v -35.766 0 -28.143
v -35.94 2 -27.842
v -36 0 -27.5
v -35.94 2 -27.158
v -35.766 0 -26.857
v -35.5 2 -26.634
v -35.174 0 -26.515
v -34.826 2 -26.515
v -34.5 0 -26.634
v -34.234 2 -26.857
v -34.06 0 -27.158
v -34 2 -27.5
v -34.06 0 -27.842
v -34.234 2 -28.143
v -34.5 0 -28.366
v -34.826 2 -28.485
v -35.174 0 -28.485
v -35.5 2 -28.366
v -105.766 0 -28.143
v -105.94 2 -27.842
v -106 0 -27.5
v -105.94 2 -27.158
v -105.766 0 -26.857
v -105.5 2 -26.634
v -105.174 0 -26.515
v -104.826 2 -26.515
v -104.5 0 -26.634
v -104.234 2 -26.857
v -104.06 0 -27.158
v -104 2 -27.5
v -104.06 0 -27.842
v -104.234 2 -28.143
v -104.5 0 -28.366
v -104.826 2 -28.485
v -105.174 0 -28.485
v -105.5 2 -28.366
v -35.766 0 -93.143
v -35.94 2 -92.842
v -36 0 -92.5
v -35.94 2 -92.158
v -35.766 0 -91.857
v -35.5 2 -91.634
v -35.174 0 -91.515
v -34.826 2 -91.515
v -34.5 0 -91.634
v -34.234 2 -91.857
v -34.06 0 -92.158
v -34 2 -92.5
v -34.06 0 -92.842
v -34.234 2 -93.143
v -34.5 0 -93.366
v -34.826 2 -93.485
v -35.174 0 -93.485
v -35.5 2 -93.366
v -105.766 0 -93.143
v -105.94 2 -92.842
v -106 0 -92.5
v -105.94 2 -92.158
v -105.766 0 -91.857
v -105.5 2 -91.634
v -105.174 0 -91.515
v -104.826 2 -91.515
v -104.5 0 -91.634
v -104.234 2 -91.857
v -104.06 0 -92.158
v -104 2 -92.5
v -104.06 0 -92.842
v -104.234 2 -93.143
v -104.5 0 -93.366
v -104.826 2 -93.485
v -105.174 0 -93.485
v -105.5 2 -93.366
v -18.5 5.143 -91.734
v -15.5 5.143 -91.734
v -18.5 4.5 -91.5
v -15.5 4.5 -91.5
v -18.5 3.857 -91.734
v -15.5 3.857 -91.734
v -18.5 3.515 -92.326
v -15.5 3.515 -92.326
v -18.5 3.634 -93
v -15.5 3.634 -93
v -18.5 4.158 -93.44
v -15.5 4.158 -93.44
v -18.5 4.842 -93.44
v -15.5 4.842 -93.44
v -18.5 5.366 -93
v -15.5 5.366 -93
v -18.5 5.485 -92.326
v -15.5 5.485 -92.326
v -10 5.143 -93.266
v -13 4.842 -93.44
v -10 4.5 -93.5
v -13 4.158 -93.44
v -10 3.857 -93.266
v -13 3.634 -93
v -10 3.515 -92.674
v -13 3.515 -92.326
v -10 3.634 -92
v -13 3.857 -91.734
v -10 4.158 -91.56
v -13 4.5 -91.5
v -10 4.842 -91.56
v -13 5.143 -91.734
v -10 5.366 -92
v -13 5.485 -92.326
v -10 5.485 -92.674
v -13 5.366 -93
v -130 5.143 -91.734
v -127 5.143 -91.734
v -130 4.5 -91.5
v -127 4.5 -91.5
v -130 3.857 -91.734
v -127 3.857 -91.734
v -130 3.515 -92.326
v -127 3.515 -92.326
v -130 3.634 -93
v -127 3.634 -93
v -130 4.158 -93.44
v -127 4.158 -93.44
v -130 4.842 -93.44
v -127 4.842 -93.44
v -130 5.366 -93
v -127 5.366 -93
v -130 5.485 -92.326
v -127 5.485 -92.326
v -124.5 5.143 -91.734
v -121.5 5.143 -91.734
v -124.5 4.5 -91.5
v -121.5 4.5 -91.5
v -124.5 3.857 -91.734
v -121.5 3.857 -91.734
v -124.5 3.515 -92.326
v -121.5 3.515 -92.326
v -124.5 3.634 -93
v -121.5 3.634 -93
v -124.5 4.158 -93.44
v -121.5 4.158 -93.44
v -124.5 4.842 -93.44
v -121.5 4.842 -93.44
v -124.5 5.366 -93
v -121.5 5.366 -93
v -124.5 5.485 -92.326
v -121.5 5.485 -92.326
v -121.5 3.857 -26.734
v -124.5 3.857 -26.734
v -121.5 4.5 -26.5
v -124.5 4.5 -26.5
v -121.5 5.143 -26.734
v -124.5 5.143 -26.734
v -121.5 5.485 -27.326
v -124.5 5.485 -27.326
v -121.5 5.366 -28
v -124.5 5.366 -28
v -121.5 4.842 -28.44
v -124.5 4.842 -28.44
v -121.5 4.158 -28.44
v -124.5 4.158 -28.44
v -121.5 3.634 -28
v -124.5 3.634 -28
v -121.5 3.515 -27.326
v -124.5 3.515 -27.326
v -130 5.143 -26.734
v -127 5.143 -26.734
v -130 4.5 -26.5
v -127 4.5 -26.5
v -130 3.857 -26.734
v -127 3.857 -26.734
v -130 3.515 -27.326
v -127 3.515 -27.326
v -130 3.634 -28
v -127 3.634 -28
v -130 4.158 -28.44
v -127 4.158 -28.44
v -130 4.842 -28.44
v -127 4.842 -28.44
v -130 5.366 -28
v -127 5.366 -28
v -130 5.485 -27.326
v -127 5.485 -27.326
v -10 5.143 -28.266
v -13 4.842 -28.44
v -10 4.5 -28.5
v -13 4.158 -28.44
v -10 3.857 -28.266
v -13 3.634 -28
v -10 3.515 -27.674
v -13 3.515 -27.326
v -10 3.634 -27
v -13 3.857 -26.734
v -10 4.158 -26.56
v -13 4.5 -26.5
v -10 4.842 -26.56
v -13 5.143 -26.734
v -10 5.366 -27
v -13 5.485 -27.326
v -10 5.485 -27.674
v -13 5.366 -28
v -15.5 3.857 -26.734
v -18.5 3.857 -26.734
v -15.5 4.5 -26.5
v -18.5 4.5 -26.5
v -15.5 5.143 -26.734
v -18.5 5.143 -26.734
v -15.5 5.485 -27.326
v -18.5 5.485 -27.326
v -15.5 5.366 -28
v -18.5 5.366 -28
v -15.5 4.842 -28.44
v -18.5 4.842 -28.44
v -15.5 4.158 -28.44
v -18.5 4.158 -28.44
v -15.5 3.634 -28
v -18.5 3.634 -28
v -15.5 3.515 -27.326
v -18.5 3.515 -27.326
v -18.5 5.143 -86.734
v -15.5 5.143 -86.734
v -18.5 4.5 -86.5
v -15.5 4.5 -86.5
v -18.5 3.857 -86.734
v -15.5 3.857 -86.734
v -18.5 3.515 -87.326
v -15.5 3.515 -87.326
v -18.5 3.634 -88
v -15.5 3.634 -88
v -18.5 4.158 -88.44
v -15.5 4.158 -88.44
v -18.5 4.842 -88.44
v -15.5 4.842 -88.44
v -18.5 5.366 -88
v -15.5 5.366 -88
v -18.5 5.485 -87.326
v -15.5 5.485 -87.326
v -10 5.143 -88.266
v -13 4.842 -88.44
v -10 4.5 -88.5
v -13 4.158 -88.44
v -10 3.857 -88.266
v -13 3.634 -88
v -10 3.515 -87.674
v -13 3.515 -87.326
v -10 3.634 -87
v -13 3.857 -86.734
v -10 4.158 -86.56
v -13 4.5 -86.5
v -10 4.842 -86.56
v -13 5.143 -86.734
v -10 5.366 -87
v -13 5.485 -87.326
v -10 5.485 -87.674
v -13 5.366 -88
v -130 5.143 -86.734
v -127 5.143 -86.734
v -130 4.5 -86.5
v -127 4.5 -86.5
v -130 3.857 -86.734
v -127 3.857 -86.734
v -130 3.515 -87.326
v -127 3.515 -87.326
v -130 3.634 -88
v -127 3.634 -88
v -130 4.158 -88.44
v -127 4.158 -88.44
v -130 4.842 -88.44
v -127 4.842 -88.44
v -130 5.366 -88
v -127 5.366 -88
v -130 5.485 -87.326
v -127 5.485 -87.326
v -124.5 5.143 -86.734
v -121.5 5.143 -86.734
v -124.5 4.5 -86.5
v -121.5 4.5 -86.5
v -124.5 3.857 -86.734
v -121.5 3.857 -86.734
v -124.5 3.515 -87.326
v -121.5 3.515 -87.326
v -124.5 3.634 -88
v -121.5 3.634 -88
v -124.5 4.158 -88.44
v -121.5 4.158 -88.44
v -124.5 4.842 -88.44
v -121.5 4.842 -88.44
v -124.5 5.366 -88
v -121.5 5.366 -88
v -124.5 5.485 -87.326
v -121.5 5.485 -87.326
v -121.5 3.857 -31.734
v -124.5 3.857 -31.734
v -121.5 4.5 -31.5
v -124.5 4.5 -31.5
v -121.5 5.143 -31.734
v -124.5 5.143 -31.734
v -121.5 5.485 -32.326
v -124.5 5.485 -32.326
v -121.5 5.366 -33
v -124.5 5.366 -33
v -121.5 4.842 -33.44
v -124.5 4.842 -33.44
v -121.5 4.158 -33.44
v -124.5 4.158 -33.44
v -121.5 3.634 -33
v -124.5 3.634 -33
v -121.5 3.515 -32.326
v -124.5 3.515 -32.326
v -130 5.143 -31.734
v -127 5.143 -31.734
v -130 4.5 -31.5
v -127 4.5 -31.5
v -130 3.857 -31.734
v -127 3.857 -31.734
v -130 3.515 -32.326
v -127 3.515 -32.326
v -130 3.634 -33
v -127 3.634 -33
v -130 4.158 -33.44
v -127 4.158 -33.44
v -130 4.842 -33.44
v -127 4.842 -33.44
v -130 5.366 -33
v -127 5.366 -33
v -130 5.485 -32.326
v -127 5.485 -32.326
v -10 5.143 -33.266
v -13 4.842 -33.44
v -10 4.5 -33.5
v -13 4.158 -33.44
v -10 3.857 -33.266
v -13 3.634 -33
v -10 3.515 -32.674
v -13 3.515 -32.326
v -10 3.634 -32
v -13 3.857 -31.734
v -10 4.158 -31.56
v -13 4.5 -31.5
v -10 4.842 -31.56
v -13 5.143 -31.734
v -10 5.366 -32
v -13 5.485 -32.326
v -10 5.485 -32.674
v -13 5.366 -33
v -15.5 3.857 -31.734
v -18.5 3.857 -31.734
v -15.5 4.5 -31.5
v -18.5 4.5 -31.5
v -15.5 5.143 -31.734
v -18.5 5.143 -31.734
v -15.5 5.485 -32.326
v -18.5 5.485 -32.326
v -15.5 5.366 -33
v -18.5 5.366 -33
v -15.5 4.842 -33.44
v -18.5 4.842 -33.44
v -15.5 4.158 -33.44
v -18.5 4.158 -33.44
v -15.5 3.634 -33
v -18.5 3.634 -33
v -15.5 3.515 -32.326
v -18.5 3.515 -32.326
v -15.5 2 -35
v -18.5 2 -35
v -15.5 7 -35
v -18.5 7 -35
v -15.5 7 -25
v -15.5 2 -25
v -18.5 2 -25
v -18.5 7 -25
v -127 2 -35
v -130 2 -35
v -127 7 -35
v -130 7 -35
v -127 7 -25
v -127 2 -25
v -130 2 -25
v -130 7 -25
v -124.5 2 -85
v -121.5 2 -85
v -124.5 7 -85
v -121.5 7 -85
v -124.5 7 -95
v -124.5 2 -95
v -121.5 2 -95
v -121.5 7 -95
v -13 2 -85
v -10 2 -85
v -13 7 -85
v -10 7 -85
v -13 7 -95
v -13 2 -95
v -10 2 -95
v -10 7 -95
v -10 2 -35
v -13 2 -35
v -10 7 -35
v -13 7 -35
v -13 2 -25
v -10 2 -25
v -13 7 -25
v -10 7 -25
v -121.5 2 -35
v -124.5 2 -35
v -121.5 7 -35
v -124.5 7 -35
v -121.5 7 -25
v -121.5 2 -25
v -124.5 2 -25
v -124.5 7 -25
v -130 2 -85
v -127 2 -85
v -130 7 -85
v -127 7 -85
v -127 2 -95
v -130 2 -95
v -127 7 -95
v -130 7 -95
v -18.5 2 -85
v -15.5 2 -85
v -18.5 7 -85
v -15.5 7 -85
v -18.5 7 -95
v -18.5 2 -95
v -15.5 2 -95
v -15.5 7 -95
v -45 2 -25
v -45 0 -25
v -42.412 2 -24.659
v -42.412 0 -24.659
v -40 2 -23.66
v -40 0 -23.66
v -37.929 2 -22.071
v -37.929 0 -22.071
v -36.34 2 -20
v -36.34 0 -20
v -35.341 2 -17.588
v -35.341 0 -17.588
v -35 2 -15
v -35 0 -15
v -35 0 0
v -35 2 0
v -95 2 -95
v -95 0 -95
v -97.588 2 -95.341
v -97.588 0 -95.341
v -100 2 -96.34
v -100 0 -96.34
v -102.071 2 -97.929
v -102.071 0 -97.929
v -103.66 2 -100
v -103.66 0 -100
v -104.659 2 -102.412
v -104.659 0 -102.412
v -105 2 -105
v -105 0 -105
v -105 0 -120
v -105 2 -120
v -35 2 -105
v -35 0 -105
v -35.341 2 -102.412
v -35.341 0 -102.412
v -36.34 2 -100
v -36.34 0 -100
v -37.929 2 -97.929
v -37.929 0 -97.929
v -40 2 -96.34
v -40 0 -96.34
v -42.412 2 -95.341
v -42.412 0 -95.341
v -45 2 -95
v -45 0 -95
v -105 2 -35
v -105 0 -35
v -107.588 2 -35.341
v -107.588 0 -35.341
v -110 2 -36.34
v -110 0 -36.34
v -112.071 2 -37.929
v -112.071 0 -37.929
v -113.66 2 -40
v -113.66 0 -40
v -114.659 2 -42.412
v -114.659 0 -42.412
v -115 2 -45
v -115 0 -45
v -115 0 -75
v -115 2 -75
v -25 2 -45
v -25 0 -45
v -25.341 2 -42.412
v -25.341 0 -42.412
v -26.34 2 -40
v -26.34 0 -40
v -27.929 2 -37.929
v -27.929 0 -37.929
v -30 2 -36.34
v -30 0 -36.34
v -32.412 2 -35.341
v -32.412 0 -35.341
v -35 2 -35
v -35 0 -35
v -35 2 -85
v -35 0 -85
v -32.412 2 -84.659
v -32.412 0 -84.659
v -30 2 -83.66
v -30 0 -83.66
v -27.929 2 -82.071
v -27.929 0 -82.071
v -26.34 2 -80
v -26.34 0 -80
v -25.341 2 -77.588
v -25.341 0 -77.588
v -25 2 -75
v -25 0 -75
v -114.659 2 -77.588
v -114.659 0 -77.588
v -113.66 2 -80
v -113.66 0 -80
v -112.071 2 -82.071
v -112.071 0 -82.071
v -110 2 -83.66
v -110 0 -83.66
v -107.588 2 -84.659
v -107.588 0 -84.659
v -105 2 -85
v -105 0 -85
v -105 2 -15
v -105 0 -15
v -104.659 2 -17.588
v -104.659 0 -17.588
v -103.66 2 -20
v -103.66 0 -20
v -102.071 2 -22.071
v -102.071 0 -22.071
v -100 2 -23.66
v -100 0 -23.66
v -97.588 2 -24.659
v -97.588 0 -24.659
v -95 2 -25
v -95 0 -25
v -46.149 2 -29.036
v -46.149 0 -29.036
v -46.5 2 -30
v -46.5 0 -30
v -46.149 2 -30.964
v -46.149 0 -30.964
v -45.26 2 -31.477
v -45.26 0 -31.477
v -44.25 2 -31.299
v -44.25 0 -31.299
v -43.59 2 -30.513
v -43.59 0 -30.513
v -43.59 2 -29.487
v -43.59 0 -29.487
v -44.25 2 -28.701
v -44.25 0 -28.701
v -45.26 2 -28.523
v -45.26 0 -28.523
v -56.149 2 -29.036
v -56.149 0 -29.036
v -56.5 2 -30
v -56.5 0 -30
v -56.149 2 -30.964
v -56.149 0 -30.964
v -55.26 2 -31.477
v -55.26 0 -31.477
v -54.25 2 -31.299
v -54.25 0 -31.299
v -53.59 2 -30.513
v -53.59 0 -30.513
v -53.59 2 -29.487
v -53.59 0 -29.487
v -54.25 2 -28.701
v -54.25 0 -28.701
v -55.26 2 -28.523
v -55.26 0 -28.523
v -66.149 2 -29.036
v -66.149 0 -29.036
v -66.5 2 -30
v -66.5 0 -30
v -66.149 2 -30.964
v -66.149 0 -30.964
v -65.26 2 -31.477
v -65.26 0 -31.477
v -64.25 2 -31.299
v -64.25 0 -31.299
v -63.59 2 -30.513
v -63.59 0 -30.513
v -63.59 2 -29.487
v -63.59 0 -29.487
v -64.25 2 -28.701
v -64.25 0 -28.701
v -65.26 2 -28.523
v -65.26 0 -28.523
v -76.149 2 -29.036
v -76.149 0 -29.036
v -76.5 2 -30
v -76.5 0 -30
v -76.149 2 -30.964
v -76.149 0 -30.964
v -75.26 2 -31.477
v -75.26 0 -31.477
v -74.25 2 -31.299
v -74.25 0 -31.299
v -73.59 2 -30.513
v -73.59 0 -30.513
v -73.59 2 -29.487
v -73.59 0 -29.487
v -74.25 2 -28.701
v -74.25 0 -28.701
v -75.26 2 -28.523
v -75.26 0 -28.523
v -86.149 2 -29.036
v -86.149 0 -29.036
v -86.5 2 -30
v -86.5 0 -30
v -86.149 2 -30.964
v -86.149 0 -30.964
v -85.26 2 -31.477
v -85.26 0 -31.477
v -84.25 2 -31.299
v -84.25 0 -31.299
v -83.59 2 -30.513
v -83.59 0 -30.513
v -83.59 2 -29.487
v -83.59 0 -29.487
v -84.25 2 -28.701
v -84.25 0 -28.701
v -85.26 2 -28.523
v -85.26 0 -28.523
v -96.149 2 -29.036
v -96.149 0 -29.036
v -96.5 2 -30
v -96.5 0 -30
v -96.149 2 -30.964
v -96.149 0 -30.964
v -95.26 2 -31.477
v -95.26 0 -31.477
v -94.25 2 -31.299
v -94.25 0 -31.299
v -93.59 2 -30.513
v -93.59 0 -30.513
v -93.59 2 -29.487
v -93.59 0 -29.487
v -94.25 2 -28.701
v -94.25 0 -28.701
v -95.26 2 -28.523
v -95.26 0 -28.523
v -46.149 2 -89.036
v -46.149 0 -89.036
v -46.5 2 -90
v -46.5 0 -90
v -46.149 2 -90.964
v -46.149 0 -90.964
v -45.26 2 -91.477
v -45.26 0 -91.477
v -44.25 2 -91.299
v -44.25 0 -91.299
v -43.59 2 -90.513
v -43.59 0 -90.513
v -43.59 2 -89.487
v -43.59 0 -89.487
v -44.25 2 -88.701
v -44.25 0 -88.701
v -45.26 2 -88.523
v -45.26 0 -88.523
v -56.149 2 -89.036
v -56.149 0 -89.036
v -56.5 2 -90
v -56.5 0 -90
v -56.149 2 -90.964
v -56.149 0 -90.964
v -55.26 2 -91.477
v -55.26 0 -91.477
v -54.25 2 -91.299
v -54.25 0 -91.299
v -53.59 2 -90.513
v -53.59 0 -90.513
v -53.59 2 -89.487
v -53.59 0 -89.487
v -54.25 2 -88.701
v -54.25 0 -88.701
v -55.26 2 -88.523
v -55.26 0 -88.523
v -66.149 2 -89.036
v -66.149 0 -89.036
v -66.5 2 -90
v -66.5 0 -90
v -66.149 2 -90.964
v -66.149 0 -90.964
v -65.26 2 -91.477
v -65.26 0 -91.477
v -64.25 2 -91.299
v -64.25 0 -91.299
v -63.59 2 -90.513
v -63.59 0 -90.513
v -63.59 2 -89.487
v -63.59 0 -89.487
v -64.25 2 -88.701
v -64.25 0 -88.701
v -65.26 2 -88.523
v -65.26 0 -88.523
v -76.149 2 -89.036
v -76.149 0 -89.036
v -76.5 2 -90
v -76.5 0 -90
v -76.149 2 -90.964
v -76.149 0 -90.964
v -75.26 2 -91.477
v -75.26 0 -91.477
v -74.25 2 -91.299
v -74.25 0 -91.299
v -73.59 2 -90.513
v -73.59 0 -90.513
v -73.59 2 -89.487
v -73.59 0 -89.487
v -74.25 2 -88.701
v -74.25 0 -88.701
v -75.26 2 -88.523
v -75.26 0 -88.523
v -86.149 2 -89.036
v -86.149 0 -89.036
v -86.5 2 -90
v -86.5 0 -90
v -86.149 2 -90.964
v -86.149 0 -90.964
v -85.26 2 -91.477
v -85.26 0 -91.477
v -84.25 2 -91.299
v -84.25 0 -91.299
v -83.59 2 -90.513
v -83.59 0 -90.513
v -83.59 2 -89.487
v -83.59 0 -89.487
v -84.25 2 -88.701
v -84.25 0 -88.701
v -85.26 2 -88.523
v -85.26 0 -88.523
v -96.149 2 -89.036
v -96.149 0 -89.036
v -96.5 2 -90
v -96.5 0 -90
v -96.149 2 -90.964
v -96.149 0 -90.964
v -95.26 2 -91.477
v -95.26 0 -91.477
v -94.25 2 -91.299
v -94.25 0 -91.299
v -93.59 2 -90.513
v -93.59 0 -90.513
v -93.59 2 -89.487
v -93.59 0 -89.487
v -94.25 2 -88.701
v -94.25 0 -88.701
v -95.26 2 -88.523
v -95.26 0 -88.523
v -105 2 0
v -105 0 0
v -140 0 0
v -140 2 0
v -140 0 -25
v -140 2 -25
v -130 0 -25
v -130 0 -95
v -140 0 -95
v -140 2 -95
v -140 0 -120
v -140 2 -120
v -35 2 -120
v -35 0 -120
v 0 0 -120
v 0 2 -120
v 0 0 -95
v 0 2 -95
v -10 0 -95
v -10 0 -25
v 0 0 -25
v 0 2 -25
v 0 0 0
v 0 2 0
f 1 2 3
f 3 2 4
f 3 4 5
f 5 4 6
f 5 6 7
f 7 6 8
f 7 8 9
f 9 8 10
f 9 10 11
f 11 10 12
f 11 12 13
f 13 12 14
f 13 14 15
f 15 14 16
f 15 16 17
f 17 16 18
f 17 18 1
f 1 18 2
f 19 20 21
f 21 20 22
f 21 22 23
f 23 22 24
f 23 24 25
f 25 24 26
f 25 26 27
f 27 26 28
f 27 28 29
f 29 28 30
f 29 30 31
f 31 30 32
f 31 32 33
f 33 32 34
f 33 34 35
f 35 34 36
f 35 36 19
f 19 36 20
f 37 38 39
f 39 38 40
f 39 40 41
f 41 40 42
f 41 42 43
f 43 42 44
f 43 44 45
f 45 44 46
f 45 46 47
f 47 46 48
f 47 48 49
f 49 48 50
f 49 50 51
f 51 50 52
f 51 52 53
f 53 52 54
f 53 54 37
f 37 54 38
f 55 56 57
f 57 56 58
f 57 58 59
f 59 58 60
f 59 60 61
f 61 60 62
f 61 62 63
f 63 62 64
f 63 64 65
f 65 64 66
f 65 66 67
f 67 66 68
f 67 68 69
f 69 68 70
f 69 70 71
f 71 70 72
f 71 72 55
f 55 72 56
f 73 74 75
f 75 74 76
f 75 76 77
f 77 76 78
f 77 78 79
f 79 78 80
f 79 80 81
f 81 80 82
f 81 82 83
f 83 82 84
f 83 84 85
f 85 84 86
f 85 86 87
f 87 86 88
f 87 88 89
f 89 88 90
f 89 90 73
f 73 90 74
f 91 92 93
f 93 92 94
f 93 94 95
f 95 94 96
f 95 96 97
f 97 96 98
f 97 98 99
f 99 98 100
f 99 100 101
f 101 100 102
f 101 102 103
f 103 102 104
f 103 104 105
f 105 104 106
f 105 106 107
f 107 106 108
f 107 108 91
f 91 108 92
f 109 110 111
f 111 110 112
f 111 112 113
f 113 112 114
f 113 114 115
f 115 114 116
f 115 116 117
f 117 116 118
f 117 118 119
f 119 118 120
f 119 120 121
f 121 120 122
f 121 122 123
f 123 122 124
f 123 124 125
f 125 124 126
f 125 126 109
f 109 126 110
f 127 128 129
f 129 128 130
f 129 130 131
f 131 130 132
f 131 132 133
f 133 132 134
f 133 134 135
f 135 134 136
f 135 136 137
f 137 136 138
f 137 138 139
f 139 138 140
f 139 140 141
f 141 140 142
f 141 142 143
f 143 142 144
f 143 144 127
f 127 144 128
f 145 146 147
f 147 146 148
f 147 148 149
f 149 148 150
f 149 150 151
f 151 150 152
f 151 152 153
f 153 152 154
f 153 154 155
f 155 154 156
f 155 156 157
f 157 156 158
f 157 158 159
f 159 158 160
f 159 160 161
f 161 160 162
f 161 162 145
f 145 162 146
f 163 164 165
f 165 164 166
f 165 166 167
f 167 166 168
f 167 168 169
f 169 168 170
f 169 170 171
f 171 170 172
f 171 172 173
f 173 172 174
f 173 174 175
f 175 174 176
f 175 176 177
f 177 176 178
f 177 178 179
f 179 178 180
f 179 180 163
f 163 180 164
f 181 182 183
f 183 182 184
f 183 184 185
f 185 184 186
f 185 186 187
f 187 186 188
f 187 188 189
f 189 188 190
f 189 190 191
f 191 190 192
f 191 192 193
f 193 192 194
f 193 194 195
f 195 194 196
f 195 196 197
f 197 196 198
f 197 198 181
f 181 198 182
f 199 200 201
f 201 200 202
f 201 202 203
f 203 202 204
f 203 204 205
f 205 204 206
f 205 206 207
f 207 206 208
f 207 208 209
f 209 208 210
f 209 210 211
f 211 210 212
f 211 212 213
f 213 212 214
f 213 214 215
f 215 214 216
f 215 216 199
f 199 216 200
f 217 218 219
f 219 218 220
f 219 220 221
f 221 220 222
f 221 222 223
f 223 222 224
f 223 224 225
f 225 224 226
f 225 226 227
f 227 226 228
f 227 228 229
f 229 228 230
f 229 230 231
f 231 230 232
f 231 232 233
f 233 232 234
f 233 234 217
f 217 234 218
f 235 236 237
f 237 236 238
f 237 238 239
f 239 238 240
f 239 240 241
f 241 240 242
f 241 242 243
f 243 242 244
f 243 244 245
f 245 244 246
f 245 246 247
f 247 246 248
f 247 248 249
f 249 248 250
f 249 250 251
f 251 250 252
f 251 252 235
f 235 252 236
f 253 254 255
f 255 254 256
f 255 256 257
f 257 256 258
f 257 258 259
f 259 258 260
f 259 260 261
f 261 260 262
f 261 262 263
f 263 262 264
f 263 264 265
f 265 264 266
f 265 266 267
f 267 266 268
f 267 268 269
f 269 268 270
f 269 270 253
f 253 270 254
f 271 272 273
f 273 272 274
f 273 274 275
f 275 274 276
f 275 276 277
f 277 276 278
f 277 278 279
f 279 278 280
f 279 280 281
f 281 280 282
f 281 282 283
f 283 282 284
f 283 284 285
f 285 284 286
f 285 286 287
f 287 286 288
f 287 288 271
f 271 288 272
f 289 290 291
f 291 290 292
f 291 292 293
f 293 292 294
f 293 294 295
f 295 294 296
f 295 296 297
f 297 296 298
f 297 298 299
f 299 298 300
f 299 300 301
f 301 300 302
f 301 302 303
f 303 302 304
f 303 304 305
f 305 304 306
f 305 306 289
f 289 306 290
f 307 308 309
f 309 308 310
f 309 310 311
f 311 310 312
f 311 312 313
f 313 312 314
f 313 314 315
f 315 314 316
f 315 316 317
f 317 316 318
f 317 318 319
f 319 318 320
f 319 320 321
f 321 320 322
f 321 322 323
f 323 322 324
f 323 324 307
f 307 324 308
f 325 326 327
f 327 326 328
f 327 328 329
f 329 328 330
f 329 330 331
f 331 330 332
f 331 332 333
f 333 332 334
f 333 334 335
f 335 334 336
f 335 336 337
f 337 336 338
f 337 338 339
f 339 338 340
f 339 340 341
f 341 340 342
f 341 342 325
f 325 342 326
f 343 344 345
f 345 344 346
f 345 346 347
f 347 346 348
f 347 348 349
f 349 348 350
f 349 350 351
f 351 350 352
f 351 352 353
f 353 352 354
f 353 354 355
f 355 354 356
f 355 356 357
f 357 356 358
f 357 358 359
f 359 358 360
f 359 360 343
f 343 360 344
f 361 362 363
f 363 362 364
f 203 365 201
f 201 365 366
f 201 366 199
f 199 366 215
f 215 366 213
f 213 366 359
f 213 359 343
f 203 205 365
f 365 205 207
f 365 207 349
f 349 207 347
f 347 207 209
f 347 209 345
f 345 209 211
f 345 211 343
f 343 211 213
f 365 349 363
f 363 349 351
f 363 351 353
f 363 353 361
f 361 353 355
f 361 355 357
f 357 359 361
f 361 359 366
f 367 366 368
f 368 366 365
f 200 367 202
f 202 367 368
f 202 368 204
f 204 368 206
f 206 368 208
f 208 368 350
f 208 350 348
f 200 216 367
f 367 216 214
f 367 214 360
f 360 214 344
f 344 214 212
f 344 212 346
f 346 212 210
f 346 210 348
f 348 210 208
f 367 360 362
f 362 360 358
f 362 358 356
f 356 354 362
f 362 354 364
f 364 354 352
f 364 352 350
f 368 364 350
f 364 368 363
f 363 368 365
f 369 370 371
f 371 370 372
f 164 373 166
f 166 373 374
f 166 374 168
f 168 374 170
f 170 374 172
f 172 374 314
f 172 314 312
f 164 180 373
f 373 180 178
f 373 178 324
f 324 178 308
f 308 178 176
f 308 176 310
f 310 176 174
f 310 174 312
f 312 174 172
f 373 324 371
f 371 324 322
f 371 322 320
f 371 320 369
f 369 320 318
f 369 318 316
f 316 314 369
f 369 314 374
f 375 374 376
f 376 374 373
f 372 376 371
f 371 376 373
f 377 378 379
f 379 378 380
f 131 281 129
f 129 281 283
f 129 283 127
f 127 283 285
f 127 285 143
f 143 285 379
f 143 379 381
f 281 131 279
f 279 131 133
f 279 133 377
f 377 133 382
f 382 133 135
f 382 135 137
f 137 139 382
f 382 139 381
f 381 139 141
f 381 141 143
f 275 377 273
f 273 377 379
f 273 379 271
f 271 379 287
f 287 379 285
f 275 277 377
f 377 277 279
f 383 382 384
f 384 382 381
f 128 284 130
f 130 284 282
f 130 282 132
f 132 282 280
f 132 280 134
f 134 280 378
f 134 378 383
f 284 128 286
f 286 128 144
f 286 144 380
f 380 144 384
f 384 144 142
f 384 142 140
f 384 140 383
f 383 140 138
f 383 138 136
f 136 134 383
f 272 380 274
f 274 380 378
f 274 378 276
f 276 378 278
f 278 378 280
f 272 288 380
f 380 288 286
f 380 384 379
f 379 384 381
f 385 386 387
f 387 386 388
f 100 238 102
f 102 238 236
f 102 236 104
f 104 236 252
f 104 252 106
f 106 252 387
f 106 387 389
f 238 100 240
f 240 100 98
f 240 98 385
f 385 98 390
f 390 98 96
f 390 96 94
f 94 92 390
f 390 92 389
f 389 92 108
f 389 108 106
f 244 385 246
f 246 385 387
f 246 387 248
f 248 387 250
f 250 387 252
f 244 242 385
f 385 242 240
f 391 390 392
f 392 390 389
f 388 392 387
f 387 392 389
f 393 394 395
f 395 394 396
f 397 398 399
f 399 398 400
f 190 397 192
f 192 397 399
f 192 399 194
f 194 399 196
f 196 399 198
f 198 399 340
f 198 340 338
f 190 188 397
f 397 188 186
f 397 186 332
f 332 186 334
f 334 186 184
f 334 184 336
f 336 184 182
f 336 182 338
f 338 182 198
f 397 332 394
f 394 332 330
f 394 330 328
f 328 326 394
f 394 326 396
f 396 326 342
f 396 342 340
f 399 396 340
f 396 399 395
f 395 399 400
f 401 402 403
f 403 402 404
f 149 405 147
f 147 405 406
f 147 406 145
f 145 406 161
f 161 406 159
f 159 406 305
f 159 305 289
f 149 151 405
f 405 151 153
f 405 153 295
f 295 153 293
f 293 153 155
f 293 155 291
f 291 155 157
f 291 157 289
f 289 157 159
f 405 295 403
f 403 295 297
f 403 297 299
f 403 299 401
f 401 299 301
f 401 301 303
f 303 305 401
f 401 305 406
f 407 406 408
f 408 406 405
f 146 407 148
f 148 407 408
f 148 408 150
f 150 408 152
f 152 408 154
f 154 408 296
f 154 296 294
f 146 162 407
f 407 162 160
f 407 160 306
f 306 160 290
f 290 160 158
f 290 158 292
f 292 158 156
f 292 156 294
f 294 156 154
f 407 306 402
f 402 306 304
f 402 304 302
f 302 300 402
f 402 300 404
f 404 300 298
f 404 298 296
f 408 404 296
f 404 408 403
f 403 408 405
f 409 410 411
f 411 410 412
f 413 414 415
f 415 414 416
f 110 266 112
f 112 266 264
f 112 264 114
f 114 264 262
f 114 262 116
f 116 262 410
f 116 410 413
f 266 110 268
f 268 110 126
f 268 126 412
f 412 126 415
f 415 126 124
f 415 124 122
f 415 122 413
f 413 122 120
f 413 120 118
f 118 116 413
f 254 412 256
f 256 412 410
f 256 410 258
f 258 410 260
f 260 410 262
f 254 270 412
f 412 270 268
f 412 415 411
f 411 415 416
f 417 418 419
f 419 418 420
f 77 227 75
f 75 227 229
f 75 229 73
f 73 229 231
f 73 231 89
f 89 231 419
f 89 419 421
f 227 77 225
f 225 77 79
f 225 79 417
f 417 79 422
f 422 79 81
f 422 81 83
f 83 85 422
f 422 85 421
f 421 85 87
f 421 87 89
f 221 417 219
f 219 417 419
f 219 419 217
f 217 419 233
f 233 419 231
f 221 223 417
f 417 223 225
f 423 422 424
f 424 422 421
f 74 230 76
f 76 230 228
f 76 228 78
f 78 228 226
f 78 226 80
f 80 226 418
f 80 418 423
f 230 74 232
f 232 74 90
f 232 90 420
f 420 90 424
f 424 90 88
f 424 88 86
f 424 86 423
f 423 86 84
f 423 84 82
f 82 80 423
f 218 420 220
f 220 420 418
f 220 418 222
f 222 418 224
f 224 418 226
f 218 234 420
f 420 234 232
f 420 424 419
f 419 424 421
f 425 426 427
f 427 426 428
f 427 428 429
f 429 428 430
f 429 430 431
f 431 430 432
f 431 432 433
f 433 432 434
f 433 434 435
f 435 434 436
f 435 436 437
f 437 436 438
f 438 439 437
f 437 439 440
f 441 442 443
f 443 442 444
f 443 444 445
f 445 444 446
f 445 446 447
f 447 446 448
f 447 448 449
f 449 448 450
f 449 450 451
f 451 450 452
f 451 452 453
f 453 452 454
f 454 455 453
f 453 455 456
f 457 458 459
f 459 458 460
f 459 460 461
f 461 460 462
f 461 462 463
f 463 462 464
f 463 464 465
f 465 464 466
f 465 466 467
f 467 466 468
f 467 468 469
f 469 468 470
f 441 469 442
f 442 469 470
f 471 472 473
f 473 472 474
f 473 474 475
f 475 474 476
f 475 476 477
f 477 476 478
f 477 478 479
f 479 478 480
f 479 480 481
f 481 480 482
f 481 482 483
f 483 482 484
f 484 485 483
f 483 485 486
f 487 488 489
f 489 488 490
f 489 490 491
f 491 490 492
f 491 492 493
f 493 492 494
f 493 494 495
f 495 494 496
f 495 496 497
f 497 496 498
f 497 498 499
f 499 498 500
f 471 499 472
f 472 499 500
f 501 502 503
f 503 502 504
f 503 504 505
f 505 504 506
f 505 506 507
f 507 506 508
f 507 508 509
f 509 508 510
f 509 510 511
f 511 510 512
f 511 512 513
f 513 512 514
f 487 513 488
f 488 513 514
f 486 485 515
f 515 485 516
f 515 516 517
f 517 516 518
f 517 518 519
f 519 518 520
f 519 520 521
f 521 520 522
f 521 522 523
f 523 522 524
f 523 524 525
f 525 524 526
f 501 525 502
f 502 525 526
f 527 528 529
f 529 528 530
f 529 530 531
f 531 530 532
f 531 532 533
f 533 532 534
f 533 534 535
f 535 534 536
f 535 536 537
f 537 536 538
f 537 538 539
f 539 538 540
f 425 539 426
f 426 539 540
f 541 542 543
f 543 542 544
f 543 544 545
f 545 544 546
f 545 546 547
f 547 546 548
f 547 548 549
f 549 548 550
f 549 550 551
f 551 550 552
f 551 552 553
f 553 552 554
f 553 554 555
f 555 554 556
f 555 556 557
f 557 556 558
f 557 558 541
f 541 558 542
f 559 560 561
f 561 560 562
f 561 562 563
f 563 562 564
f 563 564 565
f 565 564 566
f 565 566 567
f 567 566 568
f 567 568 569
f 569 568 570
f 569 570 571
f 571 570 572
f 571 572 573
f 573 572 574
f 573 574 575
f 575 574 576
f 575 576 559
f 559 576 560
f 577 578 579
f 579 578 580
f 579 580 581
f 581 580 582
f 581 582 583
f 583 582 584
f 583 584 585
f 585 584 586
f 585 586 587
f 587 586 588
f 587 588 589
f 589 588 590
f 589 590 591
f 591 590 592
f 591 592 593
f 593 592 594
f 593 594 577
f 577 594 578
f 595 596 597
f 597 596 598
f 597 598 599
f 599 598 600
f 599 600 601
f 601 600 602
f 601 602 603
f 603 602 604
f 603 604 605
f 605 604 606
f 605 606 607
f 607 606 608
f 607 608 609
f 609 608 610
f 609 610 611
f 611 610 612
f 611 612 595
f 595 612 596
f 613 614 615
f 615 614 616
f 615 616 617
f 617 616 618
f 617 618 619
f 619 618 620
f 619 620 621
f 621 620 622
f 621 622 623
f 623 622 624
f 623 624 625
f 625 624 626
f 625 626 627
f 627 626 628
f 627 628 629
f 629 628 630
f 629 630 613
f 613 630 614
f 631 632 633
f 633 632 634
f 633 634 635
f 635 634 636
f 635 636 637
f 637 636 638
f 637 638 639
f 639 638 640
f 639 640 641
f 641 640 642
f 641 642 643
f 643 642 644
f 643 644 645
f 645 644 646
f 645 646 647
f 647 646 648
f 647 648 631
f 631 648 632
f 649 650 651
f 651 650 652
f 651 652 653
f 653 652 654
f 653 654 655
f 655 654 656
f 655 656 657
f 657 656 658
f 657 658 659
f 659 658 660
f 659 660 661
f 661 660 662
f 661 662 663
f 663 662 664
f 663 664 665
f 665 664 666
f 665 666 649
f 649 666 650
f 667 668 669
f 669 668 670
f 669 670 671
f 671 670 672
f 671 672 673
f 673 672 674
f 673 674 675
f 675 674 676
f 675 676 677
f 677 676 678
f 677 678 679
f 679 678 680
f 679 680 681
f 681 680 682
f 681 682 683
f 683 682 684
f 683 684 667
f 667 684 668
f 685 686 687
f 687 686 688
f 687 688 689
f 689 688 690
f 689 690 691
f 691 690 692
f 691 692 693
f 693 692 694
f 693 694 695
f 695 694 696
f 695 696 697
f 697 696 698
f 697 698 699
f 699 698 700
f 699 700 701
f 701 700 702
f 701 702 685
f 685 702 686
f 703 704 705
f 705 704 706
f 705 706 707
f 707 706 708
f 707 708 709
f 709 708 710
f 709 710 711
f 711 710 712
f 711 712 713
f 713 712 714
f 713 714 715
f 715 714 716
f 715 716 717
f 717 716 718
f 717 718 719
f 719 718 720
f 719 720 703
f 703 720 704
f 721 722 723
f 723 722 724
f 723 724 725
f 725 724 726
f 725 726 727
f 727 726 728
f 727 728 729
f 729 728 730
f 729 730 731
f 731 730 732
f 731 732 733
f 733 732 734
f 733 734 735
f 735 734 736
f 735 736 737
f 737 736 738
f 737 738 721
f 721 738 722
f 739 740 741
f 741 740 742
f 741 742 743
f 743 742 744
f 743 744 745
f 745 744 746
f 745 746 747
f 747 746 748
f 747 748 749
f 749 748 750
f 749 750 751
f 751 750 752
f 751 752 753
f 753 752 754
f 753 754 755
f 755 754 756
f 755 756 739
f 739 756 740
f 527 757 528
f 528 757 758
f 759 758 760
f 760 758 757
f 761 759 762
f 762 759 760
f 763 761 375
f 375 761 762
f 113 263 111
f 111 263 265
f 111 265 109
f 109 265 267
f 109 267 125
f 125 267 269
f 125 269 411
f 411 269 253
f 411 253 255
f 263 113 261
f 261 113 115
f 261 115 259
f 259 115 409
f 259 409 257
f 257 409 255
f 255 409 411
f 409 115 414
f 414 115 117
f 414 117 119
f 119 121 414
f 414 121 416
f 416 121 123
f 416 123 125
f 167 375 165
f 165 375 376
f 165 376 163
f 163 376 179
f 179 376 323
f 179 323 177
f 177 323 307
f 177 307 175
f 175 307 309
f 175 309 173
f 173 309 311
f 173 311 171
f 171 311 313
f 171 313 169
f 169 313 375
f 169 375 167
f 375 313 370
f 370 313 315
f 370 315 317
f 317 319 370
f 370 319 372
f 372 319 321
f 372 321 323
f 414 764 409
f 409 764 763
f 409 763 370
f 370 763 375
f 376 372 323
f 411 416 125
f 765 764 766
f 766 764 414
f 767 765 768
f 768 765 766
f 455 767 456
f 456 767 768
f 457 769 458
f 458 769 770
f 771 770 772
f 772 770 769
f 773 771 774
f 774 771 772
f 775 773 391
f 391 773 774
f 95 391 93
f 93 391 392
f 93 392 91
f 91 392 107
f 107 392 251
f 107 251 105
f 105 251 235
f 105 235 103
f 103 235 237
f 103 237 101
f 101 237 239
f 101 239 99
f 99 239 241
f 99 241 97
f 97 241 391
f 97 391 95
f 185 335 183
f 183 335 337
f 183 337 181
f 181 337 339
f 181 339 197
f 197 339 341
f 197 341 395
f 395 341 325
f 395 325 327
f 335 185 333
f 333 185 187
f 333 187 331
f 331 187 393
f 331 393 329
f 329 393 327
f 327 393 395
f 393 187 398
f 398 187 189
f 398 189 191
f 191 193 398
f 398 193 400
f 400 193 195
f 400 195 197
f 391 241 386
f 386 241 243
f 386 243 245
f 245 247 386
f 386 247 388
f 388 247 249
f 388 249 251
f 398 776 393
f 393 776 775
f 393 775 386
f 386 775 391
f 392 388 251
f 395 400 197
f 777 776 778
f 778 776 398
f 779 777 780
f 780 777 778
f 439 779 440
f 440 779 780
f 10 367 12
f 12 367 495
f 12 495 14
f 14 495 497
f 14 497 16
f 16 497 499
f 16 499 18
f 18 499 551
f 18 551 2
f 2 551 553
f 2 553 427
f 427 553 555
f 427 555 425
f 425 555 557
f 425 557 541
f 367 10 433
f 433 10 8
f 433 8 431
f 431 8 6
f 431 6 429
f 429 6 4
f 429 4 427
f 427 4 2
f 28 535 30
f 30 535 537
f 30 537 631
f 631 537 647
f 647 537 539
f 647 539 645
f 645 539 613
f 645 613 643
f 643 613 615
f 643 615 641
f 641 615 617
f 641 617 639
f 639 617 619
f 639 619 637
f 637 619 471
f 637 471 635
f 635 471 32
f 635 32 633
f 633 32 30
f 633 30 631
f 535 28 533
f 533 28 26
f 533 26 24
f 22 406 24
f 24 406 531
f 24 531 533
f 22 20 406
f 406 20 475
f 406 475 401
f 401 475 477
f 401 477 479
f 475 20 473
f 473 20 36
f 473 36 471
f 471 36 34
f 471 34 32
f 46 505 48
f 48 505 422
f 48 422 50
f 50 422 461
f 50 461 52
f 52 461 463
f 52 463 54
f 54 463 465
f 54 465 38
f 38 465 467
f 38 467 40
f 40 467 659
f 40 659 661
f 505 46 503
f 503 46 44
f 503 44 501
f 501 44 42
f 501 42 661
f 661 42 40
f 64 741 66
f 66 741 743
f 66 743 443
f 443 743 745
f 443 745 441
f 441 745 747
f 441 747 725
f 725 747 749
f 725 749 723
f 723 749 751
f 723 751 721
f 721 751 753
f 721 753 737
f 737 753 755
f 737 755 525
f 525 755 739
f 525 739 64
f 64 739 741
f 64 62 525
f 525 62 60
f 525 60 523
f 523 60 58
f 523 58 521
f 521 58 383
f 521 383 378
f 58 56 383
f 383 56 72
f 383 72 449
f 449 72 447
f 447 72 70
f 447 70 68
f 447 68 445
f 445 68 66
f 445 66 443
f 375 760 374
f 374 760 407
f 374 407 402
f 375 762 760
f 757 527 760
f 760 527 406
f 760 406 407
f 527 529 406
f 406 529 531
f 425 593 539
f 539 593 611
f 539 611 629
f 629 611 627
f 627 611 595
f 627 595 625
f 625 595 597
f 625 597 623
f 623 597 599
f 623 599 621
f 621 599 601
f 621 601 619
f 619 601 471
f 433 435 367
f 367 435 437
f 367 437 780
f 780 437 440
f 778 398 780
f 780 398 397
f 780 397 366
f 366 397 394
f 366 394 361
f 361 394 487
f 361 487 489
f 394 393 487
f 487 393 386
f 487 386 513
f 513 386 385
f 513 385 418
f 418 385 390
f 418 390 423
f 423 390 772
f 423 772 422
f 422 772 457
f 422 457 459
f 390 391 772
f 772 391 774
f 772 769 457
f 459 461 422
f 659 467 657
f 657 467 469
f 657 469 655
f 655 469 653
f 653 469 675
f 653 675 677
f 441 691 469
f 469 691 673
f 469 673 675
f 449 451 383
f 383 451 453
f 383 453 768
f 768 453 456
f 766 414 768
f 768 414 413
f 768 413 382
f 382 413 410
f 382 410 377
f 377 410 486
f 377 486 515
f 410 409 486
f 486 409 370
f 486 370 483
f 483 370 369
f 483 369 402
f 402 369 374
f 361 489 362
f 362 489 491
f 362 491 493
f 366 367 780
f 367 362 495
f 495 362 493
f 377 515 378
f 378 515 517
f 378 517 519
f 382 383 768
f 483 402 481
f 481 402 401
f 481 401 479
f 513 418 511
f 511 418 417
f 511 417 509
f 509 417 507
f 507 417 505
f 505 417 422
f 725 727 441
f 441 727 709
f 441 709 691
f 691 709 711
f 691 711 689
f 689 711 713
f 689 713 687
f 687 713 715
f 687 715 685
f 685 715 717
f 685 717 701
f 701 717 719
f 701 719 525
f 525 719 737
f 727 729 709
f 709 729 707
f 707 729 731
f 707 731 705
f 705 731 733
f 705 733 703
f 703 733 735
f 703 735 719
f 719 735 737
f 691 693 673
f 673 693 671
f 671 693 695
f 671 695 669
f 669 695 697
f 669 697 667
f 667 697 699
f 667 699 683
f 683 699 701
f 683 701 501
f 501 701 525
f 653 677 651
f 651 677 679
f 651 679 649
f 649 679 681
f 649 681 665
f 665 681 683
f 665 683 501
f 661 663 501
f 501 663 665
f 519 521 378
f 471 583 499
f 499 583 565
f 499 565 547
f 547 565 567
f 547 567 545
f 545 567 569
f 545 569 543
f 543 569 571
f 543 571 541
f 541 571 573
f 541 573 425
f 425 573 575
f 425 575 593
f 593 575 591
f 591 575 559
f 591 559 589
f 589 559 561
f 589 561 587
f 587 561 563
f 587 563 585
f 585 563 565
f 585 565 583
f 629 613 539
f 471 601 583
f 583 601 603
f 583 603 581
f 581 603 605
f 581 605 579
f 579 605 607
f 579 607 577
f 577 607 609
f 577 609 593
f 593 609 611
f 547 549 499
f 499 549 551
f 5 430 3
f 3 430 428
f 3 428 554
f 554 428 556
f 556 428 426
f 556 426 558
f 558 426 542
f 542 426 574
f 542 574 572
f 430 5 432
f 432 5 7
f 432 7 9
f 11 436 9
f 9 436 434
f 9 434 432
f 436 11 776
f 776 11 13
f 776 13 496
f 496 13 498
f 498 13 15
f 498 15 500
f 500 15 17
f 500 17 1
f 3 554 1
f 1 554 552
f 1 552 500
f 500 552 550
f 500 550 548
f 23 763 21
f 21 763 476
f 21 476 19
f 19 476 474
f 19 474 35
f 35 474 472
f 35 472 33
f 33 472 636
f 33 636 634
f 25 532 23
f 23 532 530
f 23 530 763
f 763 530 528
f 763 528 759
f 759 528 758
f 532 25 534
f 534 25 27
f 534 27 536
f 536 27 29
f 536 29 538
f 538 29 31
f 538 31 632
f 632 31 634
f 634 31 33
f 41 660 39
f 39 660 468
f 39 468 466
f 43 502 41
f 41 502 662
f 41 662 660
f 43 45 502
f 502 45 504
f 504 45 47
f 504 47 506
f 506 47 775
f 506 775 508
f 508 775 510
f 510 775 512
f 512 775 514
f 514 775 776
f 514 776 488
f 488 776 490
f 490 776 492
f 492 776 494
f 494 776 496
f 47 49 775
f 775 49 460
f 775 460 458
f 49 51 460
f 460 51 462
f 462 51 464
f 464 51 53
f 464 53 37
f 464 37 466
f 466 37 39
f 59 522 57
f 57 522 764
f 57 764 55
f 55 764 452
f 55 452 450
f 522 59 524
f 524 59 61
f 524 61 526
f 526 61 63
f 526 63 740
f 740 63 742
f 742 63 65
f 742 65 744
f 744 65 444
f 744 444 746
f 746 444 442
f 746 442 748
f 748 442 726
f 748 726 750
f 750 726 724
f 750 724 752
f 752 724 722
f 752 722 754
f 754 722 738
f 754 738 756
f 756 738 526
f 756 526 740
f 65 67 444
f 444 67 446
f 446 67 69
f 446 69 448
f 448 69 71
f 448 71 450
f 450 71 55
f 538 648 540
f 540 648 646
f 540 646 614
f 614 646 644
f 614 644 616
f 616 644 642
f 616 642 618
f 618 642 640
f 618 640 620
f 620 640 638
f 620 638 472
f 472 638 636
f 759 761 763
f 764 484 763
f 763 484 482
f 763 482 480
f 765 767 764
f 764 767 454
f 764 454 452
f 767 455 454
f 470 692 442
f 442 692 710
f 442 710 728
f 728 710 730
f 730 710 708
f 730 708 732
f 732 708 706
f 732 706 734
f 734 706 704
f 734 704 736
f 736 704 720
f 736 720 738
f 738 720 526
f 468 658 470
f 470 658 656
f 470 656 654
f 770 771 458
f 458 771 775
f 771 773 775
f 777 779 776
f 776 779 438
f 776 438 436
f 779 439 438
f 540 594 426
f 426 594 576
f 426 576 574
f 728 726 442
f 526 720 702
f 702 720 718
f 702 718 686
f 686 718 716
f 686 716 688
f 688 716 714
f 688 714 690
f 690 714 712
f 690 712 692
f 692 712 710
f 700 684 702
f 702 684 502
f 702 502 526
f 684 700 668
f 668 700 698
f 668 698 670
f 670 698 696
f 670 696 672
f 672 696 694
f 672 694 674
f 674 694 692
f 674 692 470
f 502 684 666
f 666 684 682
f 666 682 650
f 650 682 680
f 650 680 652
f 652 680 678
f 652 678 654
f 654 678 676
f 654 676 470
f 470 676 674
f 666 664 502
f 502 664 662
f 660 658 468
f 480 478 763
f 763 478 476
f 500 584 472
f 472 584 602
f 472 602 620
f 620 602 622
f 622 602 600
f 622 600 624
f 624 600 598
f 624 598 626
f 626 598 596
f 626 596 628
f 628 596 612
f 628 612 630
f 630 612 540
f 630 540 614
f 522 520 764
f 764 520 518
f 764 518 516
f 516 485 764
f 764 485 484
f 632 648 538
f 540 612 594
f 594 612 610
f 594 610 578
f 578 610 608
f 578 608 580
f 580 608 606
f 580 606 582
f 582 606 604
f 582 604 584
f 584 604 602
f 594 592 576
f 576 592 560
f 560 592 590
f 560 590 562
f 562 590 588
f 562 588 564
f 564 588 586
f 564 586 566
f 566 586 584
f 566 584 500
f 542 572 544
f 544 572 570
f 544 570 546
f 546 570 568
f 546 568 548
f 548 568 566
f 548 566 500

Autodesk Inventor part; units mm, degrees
ref_plane "YZ Plane" through (0, 0, 0) normal (1, 0, 0) x (0, 1, 0)
ref_plane "XZ Plane" through (0, 0, 0) normal (0, 1, 0) x (-1, 0, 0)
ref_plane "XY Plane" through (0, 0, 0) normal (0, 0, 1) x (1, 0, 0)
sketch "Sketch1" plane through (0, 0, 0) normal (0, 1, 0) x (-1, 0, 0)
  line L0 (0, 0) -> (140, 0)
  line L1 (140, 0) -> (140, -120)
  line L2 (140, -120) -> (0, -120)
  line L3 (0, -120) -> (0, 0)
  line L4 (140, 0) -> (0, 0)
  line L5 (0, 0) -> (0, -25)
  line L6 (0, -25) -> (140, -25)
  line L7 (140, -25) -> (140, 0)
  line L8 (140, -120) -> (0, -120)
  line L9 (0, -120) -> (0, -95)
  line L10 (0, -95) -> (140, -95)
  line L11 (140, -95) -> (140, -120)
  line L12 (140, -25) -> (130, -25)
  line L13 (130, -25) -> (130, -95)
  line L14 (130, -95) -> (140, -95)
  line L15 (140, -95) -> (140, -25)
  line L16 (0, -25) -> (10, -25)
  line L17 (10, -25) -> (10, -95)
  line L18 (10, -95) -> (0, -95)
  line L19 (0, -95) -> (0, -25)
  line L20 (130, -25) -> (115, -25)
  line L21 (115, -25) -> (115, -95)
  line L22 (115, -95) -> (130, -95)
  line L23 (130, -95) -> (130, -25)
  line L24 (10, -95) -> (25, -95)
  line L25 (25, -95) -> (25, -25)
  line L26 (25, -25) -> (10, -25)
  line L27 (10, -25) -> (10, -95)
  line L28 (115, -25) -> (25, -25)
  line L29 (25, -25) -> (25, -35)
  line L30 (25, -35) -> (115, -35)
  line L31 (115, -35) -> (115, -25)
  line L32 (115, -95) -> (25, -95)
  line L33 (25, -95) -> (25, -85)
  line L34 (25, -85) -> (115, -85)
  line L35 (115, -85) -> (115, -95)
  line L36 (115, -30) -> (25, -30)
  line L37 (115, -90) -> (25, -90)
  line L38 (115, -30) -> (105, -30)
  line L39 (105, -30) -> (95, -30)
  line L40 (95, -30) -> (85, -30)
  line L41 (85, -30) -> (75, -30)
  line L42 (75, -30) -> (65, -30)
  line L43 (65, -30) -> (55, -30)
  line L44 (55, -30) -> (45, -30)
  line L45 (45, -30) -> (35, -30)
  line L46 (115, -90) -> (105, -90)
  line L47 (105, -90) -> (95, -90)
  line L48 (95, -90) -> (85, -90)
  line L49 (85, -90) -> (75, -90)
  line L50 (75, -90) -> (65, -90)
  line L51 (65, -90) -> (55, -90)
  line L52 (55, -90) -> (45, -90)
  line L53 (45, -90) -> (35, -90)
  line L54 (35, -90) -> (25, -90)
  circle A0 centre (105, -30) radius 1.5
  circle A1 centre (95, -30) radius 1.5
  circle A2 centre (85, -30) radius 1.5
  circle A3 centre (75, -30) radius 1.5
  circle A4 centre (65, -30) radius 1.5
  circle A5 centre (55, -30) radius 1.5
  circle A6 centre (45, -30) radius 1.5
  circle A7 centre (35, -30) radius 1.5
  circle A8 centre (105, -90) radius 1.5
  circle A9 centre (95, -90) radius 1.5
  circle A10 centre (85, -90) radius 1.5
  circle A11 centre (75, -90) radius 1.5
  circle A12 centre (65, -90) radius 1.5
  circle A13 centre (55, -90) radius 1.5
  circle A14 centre (45, -90) radius 1.5
  circle A15 centre (35, -90) radius 1.5
  line L55 (140, 0) -> (105, 0)
  line L56 (105, 0) -> (105, -25)
  line L57 (105, -25) -> (140, -25)
  line L58 (140, -25) -> (140, 0)
  line L59 (140, -95) -> (105, -95)
  line L60 (105, -95) -> (105, -120)
  line L61 (105, -120) -> (140, -120)
  line L62 (140, -120) -> (140, -95)
  line L63 (0, 0) -> (35, 0)
  line L64 (35, 0) -> (35, -25)
  line L65 (35, -25) -> (0, -25)
  line L66 (0, -25) -> (0, 0)
  line L67 (0, -95) -> (35, -95)
  line L68 (35, -95) -> (35, -120)
  line L69 (35, -120) -> (0, -120)
  line L70 (0, -120) -> (0, -95)
  dimension "d0" = 140
  dimension "d1" = 120
  dimension "d2" = 25
  dimension "d3" = 25
  dimension "d4" = 10
  dimension "d5" = 10
  dimension "d6" = 15
  dimension "d7" = 15
  dimension "d8" = 10
  dimension "d9" = 10
  dimension "d10" = 10
  dimension "d11" = 10
  dimension "d12" = 10
  dimension "d13" = 10
  dimension "d14" = 10
  dimension "d15" = 10
  dimension "d16" = 10
  dimension "d17" = 10
  dimension "d18" = 10
  dimension "d19" = 10
  dimension "d20" = 10
  dimension "d21" = 10
  dimension "d22" = 10
  dimension "d23" = 10
  dimension "d24" = 10
  dimension "d25" = 10
  dimension "d26" = 10
  dimension "d27" = 3
  dimension "d28" = 3
  dimension "d29" = 3
  dimension "d30" = 3
  dimension "d31" = 3
  dimension "d32" = 3
  dimension "d33" = 3
  dimension "d34" = 3
  dimension "d35" = 3
  dimension "d36" = 3
  dimension "d37" = 3
  dimension "d38" = 3
  dimension "d39" = 3
  dimension "d40" = 3
  dimension "d41" = 3
  dimension "d42" = 3
  dimension "d43" = 35
  dimension "d44" = 35
  dimension "d45" = 35
  dimension "d46" = 35
extrude "Extrusion1" add sketch "Sketch1" along normal blind 2 contours L0 L64 L6 L3 | L0 L1 L6 L56 | L6 L21 L36 A0 A1 A2 A3 A4 A5 A6 A7 L25 | L10 L68 L2 L3 | L6 L25 L10 L17 | L6 L13 L10 L21 | L36 A7 A6 A5 A4 A3 A2 A1 A0 L21 L30 L25 | L25 L37 A15 A14 A13 A12 A11 A10 A9 A8 L21 L10 | L1 L2 L60 L10 | A7 L36 | L36 A7 | L25 L34 L21 L37 A8 A9 A10 A11 A12 A13 A14 A15 | A0 L36 | L36 A0 | A15 L37 | L37 A15 | A8 L37 | L37 A8
fillet "Fillet1" radius 10 8 edges at (-105, 1, -25) (-115, 1, -85) (-25, 1, -85) (-25, 1, -35) (-115, 1, -35) (-35, 1, -95) (-105, 1, -95) (-35, 1, -25)
sketch "Sketch2" plane through (0, 2, 0) normal (0, 1, 0) x (1, 0, 0)
  line L0 (-130, 95) -> (-130, 25) projected
  line L1 (-130, 25) -> (-127, 25)
  line L2 (-127, 25) -> (-127, 95)
  line L3 (-127, 95) -> (-130, 95)
  line L4 (-130, 95) -> (-130, 25)
  line L5 (-127, 25) -> (-124.5, 25)
  line L6 (-124.5, 25) -> (-124.5, 95)
  line L7 (-124.5, 95) -> (-127, 95)
  line L8 (-127, 95) -> (-127, 25)
  line L9 (-124.5, 25) -> (-121.5, 25)
  line L10 (-121.5, 25) -> (-121.5, 95)
  line L11 (-121.5, 95) -> (-124.5, 95)
  line L12 (-124.5, 95) -> (-124.5, 25)
  line L13 (-10, 25) -> (-10, 95) projected
  line L14 (-10, 25) -> (-13, 25)
  line L15 (-13, 25) -> (-13, 95)
  line L16 (-13, 95) -> (-10, 95)
  line L17 (-10, 95) -> (-10, 25)
  line L18 (-13, 25) -> (-15.5, 25)
  line L19 (-15.5, 25) -> (-15.5, 95)
  line L20 (-15.5, 95) -> (-13, 95)
  line L21 (-13, 95) -> (-13, 25)
  line L22 (-15.5, 25) -> (-18.5, 25)
  line L23 (-18.5, 25) -> (-18.5, 95)
  line L24 (-18.5, 95) -> (-15.5, 95)
  line L25 (-15.5, 95) -> (-15.5, 25)
  line L26 (-130, 25) -> (-121.5, 25)
  line L27 (-121.5, 25) -> (-121.5, 35)
  line L28 (-121.5, 35) -> (-130, 35)
  line L29 (-130, 35) -> (-130, 25)
  line L30 (-130, 95) -> (-121.5, 95)
  line L31 (-121.5, 95) -> (-121.5, 85)
  line L32 (-121.5, 85) -> (-130, 85)
  line L33 (-130, 85) -> (-130, 95)
  line L34 (-18.5, 25) -> (-10, 25)
  line L35 (-10, 25) -> (-10, 35)
  line L36 (-10, 35) -> (-18.5, 35)
  line L37 (-18.5, 35) -> (-18.5, 25)
  line L38 (-18.5, 95) -> (-10, 95)
  line L39 (-10, 95) -> (-10, 85)
  line L40 (-10, 85) -> (-18.5, 85)
  line L41 (-18.5, 85) -> (-18.5, 95)
  line L42 (-130, 25) -> (-127, 25)
  line L43 (-127, 25) -> (-127, 35)
  line L44 (-127, 35) -> (-130, 35)
  line L45 (-130, 35) -> (-130, 25)
  line L46 (-18.5, 25) -> (-15.5, 25)
  line L47 (-15.5, 25) -> (-15.5, 35)
  line L48 (-15.5, 35) -> (-18.5, 35)
  line L49 (-18.5, 35) -> (-18.5, 25)
  point P0 (0, 0)
  point P1 (-124.5, 35)
  point P2 (-124.5, 85)
  point P3 (-127, 85)
  point P4 (-13, 35)
  point P5 (-13, 85)
  point P6 (-15.5, 85)
  dimension "d50" = 3
  dimension "d51" = 2.5
  dimension "d52" = 3
  dimension "d53" = 3
  dimension "d54" = 2.5
  dimension "d55" = 3
  dimension "d56" = 10
  dimension "d57" = 10
  dimension "d58" = 10
  dimension "d59" = 10
extrude "Extrusion2" add sketch "Sketch2" along normal blind 5 contours L3 L2 L32 L0 | L28 L2 L1 L0 | L11 L10 L32 L6 | L28 L10 L9 L6 | L14 L15 L36 L13 | L40 L15 L16 L13 | L22 L23 L36 L19 | L40 L23 L24 L19
sketch "Sketch3" plane through (-10, 0, -25) normal (1, 0, 0) x (0, 0, -1)
  line L0 (0, 7) -> (10, 7) projected
  line L1 (0, 7) -> (2.5, 7)
  line L2 (2.5, 7) -> (2.5, 4.5)
  line L3 (2.5, 4.5) -> (0, 4.5)
  line L4 (0, 4.5) -> (0, 7)
  line L5 (2.5, 4.5) -> (7.5, 4.5)
  circle A0 centre (2.5, 4.5) radius 1
  circle A1 centre (7.5, 4.5) radius 1
  line L6 (60, 7) -> (70, 7) projected
  line L7 (60, 7) -> (62.5, 7)
  line L8 (62.5, 7) -> (62.5, 4.5)
  line L9 (62.5, 4.5) -> (60, 4.5)
  line L10 (60, 4.5) -> (60, 7)
  line L11 (62.5, 4.5) -> (67.5, 4.5)
  circle A2 centre (67.5, 4.5) radius 1
  circle A3 centre (62.5, 4.5) radius 1
  point P0 (-25, 0)
  dimension "d62" = 2.5
  dimension "d63" = 2.5
  dimension "d64" = 5
  dimension "d65" = 2
  dimension "d66" = 2
  dimension "d67" = 2.5
  dimension "d68" = 2.5
  dimension "d69" = 5
  dimension "d70" = 2
  dimension "d71" = 2
extrude "Extrusion3" cut sketch "Sketch3" against normal up to surface (120 mm away) contours A1 | A0 L5 L2 | L2 L3 A0 | L3 L5 A0 | A2 | A3 L11 L8 | L8 L9 A3 | L9 L11 A3
sketch "Sketch4" plane through (0, 2, 0) normal (0, 1, 0) x (1, 0, 0)
  line L0 (0, 95) -> (0, 120) projected
  line L1 (0, 120) -> (-35, 120)
  line L2 (-35, 120) -> (-35, 92.5)
  line L3 (-35, 92.5) -> (0, 92.5)
  line L4 (0, 92.5) -> (0, 120)
  line L5 (-35, 0) -> (0, 0) projected
  line L6 (0, 0) -> (-35, 0)
  line L7 (-35, 0) -> (-35, 27.5)
  line L8 (-35, 27.5) -> (0, 27.5)
  line L9 (0, 27.5) -> (0, 0)
  line L10 (-140, 120) -> (-140, 95) projected
  line L11 (-140, 120) -> (-105, 120)
  line L12 (-105, 120) -> (-105, 92.5)
  line L13 (-105, 92.5) -> (-140, 92.5)
  line L14 (-140, 92.5) -> (-140, 120)
  line L15 (-140, 0) -> (-105, 0)
  line L16 (-105, 0) -> (-105, 27.5)
  line L17 (-105, 27.5) -> (-140, 27.5)
  line L18 (-140, 27.5) -> (-140, 0)
  circle A0 centre (-105, 27.5) radius 1
  circle A1 centre (-35, 27.5) radius 1
  circle A2 centre (-35, 92.5) radius 1
  circle A3 centre (-105, 92.5) radius 1
  dimension "d74" = 35
  dimension "d75" = 27.5
  dimension "d76" = 35
  dimension "d77" = 27.5
  dimension "d78" = 35
  dimension "d79" = 27.5
  dimension "d80" = 35
  dimension "d81" = 27.5
  dimension "d82" = 2
  dimension "d83" = 2
  dimension "d84" = 2
  dimension "d85" = 2
extrude "Extrusion4" cut sketch "Sketch4" against normal blind 10 contours A2 L2 L3 | L3 L2 A2 | A1 L8 L7 | L7 L8 A1 | A3 L13 L12 | L12 L13 A3 | A0 L17 L16 | L16 L17 A0
properties part number "base"
